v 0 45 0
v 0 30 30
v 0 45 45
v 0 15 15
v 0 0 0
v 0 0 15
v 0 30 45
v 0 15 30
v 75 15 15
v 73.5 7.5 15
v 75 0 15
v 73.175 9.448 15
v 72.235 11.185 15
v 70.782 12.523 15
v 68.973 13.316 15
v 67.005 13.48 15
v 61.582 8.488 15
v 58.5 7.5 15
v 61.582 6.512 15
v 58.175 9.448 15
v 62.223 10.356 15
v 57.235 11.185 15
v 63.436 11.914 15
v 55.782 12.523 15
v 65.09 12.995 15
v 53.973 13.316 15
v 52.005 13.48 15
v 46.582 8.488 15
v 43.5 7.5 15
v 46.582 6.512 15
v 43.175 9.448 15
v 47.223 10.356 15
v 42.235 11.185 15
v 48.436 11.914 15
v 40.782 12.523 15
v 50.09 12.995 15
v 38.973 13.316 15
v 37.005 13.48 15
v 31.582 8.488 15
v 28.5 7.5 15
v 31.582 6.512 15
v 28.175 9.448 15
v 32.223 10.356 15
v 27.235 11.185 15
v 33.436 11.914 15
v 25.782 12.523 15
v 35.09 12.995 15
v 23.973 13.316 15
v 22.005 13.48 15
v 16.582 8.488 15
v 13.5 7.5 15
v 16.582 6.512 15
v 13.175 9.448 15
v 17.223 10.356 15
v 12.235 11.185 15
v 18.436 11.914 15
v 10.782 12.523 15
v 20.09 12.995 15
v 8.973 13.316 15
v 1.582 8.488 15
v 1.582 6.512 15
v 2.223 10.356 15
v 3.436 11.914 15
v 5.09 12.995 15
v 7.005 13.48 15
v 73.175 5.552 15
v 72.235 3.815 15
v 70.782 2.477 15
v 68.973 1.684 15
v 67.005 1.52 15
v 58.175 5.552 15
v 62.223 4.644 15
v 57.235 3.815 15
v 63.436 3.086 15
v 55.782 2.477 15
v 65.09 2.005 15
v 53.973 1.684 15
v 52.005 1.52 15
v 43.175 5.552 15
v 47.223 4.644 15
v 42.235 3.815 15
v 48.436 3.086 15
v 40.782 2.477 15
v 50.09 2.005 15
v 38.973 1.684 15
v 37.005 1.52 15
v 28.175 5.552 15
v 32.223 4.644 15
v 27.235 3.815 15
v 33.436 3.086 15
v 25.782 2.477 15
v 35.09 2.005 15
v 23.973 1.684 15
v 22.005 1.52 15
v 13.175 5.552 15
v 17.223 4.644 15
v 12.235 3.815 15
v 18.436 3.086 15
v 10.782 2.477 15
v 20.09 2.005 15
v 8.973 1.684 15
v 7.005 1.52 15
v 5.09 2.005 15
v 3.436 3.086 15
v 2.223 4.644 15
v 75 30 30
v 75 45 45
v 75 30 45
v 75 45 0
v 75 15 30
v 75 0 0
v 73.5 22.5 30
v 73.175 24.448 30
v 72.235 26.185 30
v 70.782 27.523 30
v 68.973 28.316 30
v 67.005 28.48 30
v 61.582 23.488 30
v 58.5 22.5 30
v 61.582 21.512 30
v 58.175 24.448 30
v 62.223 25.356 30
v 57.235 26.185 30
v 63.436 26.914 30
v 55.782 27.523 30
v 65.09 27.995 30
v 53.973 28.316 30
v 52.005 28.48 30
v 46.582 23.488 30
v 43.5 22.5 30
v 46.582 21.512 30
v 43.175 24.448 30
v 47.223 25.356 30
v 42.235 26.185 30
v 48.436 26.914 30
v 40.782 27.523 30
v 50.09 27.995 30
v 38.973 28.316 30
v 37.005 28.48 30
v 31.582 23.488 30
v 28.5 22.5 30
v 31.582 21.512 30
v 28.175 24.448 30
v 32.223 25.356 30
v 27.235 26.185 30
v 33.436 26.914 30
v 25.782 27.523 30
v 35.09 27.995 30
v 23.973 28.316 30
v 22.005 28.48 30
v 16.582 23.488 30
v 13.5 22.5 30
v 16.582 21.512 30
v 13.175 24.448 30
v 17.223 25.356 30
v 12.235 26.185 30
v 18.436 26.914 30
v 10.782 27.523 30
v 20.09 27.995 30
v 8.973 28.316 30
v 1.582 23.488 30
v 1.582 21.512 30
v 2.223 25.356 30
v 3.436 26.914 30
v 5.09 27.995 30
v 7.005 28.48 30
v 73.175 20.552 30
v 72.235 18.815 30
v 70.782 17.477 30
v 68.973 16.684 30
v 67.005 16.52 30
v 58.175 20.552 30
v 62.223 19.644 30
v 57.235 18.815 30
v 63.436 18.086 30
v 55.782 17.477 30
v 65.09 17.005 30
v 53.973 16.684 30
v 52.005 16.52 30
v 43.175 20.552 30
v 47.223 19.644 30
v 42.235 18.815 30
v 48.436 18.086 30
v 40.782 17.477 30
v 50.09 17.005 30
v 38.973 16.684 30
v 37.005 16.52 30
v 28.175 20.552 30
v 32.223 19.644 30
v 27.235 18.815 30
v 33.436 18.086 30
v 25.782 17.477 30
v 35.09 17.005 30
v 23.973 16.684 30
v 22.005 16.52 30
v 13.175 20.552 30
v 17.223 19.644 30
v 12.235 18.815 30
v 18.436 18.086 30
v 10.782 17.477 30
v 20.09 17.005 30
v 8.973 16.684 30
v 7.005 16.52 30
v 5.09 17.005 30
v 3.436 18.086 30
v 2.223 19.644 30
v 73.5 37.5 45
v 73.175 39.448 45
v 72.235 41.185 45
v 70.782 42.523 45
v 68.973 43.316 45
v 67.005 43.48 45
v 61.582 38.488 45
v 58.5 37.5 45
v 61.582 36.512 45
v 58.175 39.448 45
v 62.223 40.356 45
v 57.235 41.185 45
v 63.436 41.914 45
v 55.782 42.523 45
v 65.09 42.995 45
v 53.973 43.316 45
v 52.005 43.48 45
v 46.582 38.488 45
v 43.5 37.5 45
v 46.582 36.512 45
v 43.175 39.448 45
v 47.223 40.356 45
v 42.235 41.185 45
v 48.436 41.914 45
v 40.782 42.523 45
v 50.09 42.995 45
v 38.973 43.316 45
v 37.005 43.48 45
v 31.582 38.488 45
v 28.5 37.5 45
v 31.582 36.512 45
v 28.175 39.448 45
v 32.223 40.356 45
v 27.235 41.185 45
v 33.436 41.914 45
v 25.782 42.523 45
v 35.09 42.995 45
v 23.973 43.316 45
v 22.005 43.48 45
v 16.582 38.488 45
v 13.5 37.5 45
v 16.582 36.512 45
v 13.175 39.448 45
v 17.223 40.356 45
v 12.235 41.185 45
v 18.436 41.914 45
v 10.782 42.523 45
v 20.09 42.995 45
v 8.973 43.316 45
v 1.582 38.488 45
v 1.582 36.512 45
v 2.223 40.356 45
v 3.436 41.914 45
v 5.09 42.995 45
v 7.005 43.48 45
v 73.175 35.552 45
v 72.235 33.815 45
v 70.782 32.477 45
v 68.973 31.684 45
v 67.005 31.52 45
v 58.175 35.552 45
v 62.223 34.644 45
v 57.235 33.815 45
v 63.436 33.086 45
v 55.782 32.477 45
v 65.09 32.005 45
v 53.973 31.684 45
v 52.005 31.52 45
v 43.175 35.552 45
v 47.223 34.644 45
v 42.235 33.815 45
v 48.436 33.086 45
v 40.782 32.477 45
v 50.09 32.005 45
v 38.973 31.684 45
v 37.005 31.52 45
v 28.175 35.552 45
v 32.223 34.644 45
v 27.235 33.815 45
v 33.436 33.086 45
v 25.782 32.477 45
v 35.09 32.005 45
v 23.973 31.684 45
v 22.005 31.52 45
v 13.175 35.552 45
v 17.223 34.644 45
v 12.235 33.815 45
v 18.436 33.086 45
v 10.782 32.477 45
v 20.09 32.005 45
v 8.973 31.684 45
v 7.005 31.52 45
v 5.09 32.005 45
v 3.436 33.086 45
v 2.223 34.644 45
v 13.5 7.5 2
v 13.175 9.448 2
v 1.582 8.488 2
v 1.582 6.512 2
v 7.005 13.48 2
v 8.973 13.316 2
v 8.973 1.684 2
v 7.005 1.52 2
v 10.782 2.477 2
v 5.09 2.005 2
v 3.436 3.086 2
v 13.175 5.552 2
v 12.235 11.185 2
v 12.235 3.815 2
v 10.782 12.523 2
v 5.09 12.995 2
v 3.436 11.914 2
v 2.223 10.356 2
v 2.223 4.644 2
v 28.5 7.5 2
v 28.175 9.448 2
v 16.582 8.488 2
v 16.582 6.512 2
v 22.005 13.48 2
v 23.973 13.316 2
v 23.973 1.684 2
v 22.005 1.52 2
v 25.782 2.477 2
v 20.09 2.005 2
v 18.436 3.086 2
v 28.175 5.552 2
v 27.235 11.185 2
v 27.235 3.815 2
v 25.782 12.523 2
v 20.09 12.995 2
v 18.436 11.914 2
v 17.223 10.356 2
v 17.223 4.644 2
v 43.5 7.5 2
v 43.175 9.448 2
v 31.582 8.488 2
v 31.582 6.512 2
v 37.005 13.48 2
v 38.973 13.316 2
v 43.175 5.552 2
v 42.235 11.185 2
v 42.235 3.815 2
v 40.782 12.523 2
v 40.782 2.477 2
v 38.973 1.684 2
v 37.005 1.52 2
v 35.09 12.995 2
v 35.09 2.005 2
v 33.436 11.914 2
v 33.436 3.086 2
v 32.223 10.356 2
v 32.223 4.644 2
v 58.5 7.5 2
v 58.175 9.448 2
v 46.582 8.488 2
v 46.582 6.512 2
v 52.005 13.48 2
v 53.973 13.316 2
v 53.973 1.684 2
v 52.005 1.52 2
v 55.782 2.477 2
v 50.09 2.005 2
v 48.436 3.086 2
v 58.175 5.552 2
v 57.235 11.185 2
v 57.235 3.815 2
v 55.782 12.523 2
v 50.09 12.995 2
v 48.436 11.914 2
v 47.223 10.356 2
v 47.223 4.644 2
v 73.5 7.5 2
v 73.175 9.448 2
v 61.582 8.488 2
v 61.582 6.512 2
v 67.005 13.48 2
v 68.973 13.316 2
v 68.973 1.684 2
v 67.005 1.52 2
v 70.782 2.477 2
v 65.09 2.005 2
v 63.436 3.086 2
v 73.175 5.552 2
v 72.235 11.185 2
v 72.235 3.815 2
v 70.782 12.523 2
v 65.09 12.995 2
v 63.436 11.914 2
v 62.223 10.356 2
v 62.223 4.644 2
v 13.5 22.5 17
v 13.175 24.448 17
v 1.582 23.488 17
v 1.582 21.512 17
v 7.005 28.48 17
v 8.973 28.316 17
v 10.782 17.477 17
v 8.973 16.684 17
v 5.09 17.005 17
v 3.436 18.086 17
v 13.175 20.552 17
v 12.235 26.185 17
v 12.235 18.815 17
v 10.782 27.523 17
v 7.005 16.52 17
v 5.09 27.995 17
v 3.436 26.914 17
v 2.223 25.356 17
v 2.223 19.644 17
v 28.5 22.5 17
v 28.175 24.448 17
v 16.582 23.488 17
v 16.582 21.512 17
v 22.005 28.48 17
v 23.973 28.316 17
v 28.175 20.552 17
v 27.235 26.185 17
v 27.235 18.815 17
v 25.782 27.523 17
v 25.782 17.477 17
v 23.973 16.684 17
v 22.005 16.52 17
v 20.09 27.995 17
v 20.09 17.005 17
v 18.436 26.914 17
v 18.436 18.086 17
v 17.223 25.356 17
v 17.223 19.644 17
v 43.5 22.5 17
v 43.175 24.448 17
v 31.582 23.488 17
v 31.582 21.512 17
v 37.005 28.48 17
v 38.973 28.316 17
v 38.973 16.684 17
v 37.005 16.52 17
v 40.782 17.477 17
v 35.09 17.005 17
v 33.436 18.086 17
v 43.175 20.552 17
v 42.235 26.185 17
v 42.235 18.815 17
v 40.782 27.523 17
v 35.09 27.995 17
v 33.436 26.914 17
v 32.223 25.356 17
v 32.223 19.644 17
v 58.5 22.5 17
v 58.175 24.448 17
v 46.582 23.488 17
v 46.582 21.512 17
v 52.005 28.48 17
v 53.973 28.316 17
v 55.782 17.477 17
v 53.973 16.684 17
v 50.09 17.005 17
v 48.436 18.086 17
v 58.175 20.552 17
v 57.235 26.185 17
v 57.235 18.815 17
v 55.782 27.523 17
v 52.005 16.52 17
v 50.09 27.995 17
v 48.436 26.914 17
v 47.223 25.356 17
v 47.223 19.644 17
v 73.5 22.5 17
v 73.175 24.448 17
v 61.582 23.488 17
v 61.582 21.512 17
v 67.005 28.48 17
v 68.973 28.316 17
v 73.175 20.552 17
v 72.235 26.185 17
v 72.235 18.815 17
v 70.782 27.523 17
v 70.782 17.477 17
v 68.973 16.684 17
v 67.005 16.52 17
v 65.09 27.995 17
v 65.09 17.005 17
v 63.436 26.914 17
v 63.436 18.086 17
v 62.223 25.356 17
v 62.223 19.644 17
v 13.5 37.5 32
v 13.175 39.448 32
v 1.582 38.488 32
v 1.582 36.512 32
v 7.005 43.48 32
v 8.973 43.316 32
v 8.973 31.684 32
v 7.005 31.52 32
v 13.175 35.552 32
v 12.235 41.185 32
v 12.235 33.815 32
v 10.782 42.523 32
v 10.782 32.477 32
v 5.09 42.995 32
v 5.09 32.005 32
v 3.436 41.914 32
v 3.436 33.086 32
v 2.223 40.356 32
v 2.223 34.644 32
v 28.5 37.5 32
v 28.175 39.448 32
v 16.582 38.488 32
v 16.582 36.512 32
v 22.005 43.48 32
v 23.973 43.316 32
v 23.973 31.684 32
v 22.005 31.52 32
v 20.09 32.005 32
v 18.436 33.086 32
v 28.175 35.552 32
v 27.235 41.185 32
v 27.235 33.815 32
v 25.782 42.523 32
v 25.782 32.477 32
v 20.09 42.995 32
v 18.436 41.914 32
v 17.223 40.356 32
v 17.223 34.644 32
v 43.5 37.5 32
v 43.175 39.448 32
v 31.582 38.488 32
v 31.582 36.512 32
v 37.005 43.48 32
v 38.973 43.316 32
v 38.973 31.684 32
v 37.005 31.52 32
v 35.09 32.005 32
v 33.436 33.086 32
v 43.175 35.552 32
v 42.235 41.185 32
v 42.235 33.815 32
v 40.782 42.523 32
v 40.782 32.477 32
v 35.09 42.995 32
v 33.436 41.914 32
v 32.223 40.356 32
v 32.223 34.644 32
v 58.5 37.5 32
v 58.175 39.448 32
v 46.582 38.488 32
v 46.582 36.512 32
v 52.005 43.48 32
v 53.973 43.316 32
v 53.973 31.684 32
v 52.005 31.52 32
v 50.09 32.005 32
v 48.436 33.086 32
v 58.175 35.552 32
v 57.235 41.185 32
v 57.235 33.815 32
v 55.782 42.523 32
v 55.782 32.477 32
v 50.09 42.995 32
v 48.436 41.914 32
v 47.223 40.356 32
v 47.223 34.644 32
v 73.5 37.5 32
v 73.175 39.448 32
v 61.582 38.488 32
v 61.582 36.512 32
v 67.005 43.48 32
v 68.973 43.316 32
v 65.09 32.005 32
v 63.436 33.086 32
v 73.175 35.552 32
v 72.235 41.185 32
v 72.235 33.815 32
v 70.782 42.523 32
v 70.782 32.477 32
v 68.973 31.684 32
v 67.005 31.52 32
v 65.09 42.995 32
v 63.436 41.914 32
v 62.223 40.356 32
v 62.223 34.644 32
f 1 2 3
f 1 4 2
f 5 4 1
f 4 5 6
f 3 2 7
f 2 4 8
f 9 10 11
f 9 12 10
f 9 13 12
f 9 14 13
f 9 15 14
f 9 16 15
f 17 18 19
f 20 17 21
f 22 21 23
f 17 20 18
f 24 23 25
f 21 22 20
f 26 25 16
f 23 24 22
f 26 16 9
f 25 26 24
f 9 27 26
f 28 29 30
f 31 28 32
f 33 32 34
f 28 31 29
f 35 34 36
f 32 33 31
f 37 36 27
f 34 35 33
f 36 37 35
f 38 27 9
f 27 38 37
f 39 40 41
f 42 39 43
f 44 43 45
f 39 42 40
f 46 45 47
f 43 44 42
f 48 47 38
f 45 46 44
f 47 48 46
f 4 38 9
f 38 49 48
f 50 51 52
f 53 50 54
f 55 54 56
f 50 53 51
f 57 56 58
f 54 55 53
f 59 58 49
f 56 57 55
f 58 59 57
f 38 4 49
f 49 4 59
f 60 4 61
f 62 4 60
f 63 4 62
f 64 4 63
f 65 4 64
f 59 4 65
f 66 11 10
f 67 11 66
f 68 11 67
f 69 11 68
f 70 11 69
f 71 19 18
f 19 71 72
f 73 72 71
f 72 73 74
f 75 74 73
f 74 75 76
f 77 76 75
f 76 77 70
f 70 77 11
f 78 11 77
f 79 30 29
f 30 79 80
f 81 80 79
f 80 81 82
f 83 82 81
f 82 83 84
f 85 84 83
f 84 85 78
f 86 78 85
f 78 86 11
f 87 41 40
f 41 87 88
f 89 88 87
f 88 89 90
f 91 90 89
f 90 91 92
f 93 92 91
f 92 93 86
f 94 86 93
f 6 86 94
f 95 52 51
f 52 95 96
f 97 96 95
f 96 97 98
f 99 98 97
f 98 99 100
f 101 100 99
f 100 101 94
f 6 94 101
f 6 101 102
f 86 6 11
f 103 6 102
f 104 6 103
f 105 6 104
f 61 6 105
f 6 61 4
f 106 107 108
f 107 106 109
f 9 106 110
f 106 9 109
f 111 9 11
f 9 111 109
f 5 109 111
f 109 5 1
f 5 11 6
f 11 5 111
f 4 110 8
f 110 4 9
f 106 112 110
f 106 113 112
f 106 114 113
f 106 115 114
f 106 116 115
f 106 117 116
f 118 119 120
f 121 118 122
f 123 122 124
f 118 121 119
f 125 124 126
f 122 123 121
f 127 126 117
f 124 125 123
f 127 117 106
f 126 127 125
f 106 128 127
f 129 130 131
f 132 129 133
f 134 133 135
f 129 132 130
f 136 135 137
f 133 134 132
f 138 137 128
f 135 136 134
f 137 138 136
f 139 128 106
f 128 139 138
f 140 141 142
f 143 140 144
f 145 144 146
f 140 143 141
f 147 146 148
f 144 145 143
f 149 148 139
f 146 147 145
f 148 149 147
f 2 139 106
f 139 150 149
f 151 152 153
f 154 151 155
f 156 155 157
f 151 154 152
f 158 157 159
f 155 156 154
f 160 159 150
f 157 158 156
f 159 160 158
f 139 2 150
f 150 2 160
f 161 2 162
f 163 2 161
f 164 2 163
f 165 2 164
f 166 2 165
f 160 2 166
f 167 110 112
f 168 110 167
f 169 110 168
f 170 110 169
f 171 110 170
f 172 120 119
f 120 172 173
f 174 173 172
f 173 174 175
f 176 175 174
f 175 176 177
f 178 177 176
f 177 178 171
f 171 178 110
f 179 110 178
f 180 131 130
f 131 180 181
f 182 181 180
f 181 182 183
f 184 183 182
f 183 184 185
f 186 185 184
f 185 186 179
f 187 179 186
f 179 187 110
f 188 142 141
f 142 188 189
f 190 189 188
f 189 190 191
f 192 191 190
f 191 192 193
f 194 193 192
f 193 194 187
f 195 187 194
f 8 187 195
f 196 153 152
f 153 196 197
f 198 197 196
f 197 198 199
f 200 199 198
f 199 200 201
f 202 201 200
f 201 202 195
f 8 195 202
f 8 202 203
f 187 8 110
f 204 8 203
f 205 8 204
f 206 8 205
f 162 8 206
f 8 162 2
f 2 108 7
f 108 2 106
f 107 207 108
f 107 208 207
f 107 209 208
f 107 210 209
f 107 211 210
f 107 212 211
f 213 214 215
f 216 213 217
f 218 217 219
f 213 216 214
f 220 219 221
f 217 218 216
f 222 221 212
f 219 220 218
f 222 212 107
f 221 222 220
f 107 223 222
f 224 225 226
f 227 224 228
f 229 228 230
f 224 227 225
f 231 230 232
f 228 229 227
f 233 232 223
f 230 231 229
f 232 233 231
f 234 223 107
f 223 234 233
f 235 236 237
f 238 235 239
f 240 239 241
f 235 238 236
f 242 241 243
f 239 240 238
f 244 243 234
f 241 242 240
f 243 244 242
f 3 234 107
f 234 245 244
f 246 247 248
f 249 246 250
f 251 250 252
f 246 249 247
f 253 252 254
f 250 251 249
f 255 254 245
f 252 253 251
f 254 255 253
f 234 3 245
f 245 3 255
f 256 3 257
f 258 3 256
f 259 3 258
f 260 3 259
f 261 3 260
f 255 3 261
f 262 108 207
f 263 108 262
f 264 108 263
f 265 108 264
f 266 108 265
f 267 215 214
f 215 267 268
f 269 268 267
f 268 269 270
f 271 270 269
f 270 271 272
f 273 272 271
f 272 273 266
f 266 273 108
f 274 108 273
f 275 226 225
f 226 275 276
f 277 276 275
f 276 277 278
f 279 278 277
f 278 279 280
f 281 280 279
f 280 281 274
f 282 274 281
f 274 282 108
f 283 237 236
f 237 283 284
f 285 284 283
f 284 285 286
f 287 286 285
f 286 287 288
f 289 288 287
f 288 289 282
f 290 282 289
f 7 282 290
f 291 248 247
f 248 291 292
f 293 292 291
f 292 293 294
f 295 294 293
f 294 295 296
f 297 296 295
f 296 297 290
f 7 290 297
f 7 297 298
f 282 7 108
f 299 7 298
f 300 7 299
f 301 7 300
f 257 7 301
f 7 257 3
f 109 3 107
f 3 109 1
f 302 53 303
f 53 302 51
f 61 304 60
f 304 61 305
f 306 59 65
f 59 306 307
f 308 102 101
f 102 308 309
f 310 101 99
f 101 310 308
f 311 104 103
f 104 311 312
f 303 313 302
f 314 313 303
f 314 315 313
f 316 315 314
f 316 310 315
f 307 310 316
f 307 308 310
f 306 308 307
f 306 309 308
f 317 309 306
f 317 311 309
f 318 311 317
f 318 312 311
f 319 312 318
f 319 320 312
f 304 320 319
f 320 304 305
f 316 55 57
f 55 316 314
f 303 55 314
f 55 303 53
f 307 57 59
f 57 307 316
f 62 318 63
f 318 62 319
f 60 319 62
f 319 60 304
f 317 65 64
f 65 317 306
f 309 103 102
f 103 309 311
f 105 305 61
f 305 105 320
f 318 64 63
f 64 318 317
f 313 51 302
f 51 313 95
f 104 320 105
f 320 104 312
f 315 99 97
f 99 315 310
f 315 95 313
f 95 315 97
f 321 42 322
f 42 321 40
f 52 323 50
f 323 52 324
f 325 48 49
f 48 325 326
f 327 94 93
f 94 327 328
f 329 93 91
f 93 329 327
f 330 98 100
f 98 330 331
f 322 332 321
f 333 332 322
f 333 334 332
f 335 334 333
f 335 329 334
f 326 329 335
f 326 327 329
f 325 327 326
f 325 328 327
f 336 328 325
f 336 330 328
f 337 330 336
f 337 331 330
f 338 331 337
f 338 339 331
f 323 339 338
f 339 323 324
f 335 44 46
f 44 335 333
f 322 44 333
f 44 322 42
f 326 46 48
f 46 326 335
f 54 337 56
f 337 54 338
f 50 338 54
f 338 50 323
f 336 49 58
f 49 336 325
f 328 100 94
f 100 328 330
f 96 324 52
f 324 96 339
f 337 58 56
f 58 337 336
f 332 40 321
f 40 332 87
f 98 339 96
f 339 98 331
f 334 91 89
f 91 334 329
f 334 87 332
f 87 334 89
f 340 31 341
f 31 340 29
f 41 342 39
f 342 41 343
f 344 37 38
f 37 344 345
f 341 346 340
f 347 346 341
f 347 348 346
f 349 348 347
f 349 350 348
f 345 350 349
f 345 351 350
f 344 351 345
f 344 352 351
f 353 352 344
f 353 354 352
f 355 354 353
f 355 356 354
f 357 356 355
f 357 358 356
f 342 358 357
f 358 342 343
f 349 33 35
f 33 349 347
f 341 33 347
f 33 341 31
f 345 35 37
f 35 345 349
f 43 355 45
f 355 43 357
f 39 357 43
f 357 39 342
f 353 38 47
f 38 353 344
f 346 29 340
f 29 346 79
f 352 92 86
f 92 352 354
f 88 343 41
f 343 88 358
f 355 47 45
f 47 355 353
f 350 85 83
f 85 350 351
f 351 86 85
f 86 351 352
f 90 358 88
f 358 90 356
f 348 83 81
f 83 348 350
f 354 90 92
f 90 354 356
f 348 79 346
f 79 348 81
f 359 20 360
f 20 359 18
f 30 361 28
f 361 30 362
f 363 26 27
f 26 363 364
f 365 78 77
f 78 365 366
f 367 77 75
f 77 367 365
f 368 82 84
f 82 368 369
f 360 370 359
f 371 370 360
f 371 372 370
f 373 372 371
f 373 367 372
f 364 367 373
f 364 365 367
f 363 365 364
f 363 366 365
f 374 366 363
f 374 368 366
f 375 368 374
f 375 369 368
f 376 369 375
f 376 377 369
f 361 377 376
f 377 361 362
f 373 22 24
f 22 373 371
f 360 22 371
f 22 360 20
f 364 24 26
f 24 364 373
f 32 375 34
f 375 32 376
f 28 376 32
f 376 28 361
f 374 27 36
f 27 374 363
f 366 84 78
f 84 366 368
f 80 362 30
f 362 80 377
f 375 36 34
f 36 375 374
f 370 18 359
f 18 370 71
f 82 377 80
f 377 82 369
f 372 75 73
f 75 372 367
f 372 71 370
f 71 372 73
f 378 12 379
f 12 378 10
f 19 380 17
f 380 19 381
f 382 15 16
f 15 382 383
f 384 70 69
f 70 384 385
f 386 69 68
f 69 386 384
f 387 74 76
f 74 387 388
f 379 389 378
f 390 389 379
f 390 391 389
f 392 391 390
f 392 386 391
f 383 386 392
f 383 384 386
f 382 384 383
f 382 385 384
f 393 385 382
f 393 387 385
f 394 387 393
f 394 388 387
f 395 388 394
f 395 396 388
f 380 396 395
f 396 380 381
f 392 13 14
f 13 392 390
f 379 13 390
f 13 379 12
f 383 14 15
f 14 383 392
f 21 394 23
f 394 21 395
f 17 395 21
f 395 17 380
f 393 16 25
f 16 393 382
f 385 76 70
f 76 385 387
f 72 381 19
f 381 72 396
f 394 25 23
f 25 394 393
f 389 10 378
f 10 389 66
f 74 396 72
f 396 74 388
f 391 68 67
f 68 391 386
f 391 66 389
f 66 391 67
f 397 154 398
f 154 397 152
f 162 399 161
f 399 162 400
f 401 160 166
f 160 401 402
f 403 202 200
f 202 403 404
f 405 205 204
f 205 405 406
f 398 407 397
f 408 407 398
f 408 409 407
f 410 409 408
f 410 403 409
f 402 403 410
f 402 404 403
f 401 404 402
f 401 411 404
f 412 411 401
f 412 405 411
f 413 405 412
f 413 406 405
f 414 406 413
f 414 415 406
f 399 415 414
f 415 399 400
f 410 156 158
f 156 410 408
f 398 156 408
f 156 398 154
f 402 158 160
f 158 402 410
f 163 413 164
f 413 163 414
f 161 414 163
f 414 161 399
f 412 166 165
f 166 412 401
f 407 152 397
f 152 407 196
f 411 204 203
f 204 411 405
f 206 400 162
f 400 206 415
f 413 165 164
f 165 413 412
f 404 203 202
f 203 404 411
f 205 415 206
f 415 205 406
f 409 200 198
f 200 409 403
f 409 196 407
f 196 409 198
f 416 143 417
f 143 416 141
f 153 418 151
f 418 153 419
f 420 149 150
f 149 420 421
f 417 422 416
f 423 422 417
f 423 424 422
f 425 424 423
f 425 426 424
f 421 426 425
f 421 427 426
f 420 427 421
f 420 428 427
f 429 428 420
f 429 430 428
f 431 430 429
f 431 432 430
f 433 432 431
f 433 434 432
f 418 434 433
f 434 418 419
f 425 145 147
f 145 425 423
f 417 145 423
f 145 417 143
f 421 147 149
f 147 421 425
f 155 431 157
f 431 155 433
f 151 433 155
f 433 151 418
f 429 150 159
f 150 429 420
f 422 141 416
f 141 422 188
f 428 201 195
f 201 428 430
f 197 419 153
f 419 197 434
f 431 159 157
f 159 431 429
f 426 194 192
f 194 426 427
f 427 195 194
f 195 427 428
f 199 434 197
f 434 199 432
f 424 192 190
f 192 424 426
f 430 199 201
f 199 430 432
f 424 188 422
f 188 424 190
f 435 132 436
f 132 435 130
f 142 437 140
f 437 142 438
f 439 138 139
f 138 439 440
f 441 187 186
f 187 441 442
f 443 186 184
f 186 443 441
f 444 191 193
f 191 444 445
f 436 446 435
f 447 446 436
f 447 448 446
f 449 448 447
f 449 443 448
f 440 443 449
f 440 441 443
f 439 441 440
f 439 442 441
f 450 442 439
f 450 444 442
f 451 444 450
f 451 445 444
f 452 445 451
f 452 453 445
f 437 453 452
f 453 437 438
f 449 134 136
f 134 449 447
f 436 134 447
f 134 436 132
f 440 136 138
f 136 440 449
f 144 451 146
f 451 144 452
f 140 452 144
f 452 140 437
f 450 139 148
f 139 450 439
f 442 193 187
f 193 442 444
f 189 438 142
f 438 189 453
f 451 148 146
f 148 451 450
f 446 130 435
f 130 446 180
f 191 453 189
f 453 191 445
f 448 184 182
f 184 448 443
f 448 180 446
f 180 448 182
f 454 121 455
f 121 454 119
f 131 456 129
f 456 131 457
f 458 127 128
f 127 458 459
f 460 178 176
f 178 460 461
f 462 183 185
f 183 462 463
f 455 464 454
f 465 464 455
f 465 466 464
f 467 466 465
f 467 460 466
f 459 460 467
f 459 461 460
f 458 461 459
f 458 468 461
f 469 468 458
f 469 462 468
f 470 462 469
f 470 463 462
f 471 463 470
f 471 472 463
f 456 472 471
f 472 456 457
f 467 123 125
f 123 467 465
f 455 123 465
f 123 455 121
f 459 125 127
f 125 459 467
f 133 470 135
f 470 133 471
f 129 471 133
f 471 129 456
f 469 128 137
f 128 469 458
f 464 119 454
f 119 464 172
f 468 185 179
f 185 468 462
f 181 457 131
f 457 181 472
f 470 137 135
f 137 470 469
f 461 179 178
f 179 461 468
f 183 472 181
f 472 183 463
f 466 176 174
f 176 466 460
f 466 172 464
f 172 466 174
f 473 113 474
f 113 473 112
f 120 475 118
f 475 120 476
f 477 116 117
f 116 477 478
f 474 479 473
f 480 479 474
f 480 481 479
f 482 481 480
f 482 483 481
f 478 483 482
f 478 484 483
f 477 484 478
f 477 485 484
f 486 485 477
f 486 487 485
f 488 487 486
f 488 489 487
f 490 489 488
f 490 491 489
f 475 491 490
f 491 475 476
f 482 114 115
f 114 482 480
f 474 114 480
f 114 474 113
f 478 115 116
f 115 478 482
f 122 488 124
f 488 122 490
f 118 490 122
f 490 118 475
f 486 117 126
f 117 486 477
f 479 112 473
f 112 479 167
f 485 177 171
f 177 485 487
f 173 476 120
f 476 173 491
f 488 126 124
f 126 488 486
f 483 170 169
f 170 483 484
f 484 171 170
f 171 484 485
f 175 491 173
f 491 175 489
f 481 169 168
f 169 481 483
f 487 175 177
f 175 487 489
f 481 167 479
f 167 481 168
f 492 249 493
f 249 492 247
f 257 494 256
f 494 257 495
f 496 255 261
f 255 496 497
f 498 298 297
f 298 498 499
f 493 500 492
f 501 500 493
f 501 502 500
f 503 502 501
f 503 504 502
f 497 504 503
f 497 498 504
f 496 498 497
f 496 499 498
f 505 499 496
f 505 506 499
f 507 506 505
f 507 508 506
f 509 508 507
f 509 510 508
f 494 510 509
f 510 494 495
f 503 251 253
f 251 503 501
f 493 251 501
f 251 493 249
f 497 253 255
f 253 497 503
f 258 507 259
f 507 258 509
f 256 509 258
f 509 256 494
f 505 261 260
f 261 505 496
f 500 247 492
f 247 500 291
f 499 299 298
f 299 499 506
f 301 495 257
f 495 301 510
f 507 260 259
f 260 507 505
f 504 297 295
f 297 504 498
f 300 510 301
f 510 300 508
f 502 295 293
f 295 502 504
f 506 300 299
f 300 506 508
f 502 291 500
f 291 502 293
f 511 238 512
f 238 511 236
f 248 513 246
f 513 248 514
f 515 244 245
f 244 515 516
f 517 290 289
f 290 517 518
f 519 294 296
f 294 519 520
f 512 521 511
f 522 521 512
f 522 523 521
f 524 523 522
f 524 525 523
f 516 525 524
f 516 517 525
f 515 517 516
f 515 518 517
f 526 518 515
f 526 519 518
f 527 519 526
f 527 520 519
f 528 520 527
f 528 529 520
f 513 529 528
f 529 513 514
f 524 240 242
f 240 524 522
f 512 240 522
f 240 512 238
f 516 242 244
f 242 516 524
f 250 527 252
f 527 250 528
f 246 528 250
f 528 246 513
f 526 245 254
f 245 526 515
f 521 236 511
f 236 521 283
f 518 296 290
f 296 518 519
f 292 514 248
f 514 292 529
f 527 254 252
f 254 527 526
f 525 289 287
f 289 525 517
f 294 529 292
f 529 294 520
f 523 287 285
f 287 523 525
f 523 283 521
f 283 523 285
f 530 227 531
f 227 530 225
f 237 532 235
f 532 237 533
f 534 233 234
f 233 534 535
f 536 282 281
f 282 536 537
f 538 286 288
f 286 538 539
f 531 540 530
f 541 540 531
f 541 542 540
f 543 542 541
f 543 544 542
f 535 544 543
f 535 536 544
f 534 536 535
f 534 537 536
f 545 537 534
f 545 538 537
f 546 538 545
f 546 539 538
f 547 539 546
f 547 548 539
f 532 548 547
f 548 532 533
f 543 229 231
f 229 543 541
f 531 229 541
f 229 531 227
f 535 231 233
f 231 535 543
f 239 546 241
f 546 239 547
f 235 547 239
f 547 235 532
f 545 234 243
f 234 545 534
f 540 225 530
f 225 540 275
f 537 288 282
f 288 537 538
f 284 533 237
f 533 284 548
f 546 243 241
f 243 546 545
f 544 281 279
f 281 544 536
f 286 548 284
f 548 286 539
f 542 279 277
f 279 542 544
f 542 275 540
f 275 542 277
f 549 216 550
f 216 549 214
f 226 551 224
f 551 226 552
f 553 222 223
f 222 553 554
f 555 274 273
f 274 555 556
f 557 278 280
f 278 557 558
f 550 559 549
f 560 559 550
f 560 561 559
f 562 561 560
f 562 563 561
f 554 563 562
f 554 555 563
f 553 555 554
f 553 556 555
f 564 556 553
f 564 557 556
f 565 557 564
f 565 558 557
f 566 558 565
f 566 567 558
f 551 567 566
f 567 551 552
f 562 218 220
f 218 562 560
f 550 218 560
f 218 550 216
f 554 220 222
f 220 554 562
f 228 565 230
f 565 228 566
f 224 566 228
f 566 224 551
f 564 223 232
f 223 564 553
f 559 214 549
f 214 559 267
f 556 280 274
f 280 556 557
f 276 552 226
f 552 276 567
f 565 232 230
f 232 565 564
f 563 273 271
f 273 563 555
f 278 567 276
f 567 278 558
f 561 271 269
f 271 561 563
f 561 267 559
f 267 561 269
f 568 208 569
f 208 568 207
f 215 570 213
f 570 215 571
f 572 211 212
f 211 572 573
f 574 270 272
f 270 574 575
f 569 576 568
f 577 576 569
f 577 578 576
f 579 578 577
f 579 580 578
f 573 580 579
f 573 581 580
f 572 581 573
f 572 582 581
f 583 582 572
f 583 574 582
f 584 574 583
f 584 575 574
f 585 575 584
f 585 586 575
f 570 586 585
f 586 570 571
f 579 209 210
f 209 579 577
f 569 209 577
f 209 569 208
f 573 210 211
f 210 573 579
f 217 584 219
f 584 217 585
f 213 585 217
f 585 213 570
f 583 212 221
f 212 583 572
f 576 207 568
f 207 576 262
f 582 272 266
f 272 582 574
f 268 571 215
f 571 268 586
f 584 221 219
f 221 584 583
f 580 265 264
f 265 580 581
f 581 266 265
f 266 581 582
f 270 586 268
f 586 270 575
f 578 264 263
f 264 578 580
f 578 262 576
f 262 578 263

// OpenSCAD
CUBE_EDGE = 15;
CELLS_PER_ROW = 5;
HOLE_RADIUS = 6;
HOLE_DEPTH_OFFSET = 2;
STEPS = 3;

module stairs()
  for(i=[0:STEPS-1])
    translate([0,i*CUBE_EDGE,0])
      cube([CUBE_EDGE * CELLS_PER_ROW,
            CUBE_EDGE,
            (i+1) * CUBE_EDGE
           ]);

module holes()
  for(i=[0: STEPS - 1])
    for(j=[0: CELLS_PER_ROW - 1])
      translate([CUBE_EDGE/2 + j*CUBE_EDGE,
                 CUBE_EDGE/2 + i*CUBE_EDGE,
                 HOLE_DEPTH_OFFSET + i*CUBE_EDGE
                ])
        cylinder(CUBE_EDGE*2, HOLE_RADIUS, HOLE_RADIUS);

difference(){
  stairs();
  holes();
}
